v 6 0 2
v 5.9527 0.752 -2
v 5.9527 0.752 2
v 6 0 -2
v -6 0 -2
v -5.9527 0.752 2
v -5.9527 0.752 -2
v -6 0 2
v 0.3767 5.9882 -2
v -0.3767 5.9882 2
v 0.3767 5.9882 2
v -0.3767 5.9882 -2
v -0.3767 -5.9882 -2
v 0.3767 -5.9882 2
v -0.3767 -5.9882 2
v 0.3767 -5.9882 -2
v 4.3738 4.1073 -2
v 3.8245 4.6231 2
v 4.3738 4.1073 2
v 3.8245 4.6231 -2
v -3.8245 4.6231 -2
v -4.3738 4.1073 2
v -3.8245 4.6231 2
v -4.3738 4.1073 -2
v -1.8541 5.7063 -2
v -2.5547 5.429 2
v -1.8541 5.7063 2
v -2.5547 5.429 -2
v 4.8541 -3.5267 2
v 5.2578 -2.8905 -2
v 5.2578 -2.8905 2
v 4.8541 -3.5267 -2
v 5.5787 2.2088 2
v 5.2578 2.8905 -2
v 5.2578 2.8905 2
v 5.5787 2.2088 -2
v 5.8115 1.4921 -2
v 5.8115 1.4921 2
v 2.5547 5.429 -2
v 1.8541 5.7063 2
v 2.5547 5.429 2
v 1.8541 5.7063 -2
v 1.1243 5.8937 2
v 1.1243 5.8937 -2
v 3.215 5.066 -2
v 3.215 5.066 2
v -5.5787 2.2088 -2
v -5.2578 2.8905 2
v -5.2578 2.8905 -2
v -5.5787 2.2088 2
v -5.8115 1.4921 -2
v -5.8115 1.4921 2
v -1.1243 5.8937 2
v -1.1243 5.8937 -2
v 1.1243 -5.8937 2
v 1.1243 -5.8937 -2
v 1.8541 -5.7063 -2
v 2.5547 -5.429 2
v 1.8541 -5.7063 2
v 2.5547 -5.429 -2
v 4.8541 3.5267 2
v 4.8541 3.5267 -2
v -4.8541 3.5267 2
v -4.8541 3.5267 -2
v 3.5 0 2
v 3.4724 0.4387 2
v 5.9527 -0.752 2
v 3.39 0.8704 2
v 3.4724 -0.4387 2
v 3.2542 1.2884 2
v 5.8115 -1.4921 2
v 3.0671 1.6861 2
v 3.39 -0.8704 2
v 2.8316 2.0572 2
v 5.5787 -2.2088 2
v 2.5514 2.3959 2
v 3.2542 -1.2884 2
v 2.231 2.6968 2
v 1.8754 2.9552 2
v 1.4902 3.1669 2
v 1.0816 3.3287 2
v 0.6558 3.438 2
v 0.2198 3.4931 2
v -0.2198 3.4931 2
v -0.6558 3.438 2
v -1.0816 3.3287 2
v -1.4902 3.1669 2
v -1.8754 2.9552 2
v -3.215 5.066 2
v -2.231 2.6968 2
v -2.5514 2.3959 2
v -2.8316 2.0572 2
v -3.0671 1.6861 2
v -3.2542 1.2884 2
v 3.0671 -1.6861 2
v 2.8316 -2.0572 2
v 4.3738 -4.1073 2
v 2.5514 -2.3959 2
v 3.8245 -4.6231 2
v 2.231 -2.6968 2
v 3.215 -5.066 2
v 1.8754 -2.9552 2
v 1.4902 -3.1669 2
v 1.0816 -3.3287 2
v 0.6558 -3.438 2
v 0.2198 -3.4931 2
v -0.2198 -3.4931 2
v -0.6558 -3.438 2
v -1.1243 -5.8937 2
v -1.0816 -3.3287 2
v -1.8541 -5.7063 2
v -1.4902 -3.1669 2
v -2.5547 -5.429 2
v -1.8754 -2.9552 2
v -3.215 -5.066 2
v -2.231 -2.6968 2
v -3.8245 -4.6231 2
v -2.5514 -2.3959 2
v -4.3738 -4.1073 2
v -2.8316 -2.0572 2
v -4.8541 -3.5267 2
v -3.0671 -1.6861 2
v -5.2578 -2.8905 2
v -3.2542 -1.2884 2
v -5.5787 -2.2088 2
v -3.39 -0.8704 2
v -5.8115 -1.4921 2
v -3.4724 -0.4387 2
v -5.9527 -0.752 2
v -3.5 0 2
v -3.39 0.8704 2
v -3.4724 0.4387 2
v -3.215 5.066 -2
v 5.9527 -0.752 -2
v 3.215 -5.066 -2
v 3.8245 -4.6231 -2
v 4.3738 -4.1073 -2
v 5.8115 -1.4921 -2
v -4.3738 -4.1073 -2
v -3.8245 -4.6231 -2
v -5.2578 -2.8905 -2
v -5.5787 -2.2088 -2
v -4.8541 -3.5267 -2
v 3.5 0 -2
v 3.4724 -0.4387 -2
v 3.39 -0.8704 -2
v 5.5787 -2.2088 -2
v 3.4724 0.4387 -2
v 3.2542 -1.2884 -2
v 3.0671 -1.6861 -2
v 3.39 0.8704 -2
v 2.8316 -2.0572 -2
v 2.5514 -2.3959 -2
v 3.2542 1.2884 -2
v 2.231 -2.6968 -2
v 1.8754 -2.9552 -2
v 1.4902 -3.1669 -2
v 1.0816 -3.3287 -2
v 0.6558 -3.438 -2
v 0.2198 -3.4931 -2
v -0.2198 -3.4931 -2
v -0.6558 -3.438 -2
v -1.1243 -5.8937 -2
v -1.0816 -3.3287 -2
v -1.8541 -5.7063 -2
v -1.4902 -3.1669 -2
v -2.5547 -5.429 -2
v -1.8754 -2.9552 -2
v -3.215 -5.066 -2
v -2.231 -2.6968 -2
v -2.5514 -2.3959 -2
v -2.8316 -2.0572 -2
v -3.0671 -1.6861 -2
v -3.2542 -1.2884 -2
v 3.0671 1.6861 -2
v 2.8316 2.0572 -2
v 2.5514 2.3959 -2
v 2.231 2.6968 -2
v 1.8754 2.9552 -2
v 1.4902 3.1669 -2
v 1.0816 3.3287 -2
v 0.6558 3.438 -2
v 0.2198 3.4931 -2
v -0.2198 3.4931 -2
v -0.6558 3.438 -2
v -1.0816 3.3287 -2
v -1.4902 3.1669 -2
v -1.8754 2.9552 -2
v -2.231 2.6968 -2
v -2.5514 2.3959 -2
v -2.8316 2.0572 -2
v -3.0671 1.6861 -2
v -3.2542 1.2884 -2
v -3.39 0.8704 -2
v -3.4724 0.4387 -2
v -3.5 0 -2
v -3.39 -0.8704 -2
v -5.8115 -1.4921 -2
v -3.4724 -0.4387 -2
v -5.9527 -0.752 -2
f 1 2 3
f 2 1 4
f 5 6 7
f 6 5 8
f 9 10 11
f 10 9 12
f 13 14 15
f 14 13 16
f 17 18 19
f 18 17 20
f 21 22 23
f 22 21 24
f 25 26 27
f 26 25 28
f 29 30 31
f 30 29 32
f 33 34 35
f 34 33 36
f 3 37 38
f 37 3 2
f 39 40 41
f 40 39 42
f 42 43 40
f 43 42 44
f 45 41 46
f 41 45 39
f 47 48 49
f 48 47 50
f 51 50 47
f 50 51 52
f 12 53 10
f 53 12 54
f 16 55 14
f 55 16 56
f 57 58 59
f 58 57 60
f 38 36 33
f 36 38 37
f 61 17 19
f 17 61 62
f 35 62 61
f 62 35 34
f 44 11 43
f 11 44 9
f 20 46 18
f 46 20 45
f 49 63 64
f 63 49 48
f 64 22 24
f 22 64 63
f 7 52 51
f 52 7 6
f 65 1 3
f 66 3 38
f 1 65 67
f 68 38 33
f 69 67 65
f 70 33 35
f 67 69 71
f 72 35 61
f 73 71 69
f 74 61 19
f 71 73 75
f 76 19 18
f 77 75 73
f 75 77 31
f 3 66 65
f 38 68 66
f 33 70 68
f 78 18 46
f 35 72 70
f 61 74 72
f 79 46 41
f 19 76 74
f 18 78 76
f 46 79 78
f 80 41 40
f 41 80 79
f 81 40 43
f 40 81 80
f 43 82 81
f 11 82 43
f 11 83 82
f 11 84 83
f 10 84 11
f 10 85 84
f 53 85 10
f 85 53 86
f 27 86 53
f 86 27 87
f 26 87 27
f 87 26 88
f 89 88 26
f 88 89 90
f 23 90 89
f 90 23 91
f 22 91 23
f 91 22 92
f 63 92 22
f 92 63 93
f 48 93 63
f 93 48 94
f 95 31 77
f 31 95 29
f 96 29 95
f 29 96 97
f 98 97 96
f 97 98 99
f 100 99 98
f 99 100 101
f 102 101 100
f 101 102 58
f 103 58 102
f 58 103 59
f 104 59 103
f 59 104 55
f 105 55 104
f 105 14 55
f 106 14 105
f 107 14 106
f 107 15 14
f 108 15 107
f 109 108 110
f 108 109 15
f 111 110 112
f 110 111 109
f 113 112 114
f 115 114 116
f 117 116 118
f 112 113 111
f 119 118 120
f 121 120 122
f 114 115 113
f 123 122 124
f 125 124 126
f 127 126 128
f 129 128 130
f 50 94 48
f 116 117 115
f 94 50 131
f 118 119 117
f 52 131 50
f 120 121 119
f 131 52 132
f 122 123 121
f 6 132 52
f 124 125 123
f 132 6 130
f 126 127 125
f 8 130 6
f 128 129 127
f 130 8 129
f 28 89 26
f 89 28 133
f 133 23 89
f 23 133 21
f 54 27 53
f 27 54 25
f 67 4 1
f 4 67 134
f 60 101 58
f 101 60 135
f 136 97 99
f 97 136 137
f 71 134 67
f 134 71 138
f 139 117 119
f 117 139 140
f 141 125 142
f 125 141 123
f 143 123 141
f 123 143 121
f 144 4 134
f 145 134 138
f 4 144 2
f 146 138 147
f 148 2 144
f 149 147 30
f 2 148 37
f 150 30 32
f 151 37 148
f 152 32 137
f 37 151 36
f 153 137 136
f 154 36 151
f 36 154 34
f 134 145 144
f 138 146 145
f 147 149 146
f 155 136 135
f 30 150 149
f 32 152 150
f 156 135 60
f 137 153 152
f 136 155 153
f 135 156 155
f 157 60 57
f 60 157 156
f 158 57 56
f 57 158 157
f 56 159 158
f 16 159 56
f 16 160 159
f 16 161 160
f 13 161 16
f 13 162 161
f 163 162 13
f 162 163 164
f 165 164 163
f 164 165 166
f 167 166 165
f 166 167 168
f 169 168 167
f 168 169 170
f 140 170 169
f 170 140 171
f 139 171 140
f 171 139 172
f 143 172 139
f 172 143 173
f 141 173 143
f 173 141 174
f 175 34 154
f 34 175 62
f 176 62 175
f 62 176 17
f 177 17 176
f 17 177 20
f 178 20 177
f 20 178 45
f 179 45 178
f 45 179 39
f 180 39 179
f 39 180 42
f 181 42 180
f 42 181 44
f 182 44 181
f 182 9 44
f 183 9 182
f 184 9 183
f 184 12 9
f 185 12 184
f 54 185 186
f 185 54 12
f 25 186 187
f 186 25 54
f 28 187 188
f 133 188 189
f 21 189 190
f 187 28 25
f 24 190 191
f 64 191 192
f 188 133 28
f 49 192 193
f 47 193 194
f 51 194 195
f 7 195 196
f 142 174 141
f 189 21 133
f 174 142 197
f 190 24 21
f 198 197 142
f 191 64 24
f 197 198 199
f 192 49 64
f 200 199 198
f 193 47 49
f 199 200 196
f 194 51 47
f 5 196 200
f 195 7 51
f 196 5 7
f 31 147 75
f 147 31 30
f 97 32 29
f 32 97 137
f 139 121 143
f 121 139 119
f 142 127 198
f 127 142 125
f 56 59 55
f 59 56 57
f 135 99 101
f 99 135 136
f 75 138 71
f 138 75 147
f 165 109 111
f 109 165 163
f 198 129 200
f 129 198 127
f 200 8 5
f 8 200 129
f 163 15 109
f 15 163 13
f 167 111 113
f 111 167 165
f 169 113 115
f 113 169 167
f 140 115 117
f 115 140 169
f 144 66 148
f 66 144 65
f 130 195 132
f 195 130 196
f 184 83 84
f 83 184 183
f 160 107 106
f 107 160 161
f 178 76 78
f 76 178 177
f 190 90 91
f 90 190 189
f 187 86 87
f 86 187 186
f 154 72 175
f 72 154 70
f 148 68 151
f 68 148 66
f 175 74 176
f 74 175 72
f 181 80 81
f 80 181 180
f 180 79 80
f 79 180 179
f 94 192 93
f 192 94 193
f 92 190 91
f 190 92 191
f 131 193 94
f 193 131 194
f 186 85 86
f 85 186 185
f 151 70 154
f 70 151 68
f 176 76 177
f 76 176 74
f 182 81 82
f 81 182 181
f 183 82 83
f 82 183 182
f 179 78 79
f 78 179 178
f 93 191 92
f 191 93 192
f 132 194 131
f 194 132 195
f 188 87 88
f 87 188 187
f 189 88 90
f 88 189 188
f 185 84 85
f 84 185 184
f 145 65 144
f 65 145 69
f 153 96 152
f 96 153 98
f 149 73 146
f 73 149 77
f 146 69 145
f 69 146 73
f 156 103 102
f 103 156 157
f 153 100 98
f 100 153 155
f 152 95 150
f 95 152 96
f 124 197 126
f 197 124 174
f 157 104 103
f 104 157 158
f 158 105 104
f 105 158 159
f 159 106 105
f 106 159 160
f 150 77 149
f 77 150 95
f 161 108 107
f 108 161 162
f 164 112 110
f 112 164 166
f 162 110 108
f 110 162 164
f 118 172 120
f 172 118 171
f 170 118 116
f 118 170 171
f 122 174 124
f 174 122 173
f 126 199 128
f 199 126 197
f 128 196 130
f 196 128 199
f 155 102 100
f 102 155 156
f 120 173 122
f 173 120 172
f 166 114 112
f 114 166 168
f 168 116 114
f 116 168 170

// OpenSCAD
$fn = 50;


difference() {
	union() {
		translate(v = [0, 0, -2.0000000000]) {
			cylinder(h = 4, r = 6.0000000000);
		}
	}
	union() {
		translate(v = [0, 0, -100.0000000000]) {
			cylinder(h = 200, r = 3.5000000000);
		}
	}
}
